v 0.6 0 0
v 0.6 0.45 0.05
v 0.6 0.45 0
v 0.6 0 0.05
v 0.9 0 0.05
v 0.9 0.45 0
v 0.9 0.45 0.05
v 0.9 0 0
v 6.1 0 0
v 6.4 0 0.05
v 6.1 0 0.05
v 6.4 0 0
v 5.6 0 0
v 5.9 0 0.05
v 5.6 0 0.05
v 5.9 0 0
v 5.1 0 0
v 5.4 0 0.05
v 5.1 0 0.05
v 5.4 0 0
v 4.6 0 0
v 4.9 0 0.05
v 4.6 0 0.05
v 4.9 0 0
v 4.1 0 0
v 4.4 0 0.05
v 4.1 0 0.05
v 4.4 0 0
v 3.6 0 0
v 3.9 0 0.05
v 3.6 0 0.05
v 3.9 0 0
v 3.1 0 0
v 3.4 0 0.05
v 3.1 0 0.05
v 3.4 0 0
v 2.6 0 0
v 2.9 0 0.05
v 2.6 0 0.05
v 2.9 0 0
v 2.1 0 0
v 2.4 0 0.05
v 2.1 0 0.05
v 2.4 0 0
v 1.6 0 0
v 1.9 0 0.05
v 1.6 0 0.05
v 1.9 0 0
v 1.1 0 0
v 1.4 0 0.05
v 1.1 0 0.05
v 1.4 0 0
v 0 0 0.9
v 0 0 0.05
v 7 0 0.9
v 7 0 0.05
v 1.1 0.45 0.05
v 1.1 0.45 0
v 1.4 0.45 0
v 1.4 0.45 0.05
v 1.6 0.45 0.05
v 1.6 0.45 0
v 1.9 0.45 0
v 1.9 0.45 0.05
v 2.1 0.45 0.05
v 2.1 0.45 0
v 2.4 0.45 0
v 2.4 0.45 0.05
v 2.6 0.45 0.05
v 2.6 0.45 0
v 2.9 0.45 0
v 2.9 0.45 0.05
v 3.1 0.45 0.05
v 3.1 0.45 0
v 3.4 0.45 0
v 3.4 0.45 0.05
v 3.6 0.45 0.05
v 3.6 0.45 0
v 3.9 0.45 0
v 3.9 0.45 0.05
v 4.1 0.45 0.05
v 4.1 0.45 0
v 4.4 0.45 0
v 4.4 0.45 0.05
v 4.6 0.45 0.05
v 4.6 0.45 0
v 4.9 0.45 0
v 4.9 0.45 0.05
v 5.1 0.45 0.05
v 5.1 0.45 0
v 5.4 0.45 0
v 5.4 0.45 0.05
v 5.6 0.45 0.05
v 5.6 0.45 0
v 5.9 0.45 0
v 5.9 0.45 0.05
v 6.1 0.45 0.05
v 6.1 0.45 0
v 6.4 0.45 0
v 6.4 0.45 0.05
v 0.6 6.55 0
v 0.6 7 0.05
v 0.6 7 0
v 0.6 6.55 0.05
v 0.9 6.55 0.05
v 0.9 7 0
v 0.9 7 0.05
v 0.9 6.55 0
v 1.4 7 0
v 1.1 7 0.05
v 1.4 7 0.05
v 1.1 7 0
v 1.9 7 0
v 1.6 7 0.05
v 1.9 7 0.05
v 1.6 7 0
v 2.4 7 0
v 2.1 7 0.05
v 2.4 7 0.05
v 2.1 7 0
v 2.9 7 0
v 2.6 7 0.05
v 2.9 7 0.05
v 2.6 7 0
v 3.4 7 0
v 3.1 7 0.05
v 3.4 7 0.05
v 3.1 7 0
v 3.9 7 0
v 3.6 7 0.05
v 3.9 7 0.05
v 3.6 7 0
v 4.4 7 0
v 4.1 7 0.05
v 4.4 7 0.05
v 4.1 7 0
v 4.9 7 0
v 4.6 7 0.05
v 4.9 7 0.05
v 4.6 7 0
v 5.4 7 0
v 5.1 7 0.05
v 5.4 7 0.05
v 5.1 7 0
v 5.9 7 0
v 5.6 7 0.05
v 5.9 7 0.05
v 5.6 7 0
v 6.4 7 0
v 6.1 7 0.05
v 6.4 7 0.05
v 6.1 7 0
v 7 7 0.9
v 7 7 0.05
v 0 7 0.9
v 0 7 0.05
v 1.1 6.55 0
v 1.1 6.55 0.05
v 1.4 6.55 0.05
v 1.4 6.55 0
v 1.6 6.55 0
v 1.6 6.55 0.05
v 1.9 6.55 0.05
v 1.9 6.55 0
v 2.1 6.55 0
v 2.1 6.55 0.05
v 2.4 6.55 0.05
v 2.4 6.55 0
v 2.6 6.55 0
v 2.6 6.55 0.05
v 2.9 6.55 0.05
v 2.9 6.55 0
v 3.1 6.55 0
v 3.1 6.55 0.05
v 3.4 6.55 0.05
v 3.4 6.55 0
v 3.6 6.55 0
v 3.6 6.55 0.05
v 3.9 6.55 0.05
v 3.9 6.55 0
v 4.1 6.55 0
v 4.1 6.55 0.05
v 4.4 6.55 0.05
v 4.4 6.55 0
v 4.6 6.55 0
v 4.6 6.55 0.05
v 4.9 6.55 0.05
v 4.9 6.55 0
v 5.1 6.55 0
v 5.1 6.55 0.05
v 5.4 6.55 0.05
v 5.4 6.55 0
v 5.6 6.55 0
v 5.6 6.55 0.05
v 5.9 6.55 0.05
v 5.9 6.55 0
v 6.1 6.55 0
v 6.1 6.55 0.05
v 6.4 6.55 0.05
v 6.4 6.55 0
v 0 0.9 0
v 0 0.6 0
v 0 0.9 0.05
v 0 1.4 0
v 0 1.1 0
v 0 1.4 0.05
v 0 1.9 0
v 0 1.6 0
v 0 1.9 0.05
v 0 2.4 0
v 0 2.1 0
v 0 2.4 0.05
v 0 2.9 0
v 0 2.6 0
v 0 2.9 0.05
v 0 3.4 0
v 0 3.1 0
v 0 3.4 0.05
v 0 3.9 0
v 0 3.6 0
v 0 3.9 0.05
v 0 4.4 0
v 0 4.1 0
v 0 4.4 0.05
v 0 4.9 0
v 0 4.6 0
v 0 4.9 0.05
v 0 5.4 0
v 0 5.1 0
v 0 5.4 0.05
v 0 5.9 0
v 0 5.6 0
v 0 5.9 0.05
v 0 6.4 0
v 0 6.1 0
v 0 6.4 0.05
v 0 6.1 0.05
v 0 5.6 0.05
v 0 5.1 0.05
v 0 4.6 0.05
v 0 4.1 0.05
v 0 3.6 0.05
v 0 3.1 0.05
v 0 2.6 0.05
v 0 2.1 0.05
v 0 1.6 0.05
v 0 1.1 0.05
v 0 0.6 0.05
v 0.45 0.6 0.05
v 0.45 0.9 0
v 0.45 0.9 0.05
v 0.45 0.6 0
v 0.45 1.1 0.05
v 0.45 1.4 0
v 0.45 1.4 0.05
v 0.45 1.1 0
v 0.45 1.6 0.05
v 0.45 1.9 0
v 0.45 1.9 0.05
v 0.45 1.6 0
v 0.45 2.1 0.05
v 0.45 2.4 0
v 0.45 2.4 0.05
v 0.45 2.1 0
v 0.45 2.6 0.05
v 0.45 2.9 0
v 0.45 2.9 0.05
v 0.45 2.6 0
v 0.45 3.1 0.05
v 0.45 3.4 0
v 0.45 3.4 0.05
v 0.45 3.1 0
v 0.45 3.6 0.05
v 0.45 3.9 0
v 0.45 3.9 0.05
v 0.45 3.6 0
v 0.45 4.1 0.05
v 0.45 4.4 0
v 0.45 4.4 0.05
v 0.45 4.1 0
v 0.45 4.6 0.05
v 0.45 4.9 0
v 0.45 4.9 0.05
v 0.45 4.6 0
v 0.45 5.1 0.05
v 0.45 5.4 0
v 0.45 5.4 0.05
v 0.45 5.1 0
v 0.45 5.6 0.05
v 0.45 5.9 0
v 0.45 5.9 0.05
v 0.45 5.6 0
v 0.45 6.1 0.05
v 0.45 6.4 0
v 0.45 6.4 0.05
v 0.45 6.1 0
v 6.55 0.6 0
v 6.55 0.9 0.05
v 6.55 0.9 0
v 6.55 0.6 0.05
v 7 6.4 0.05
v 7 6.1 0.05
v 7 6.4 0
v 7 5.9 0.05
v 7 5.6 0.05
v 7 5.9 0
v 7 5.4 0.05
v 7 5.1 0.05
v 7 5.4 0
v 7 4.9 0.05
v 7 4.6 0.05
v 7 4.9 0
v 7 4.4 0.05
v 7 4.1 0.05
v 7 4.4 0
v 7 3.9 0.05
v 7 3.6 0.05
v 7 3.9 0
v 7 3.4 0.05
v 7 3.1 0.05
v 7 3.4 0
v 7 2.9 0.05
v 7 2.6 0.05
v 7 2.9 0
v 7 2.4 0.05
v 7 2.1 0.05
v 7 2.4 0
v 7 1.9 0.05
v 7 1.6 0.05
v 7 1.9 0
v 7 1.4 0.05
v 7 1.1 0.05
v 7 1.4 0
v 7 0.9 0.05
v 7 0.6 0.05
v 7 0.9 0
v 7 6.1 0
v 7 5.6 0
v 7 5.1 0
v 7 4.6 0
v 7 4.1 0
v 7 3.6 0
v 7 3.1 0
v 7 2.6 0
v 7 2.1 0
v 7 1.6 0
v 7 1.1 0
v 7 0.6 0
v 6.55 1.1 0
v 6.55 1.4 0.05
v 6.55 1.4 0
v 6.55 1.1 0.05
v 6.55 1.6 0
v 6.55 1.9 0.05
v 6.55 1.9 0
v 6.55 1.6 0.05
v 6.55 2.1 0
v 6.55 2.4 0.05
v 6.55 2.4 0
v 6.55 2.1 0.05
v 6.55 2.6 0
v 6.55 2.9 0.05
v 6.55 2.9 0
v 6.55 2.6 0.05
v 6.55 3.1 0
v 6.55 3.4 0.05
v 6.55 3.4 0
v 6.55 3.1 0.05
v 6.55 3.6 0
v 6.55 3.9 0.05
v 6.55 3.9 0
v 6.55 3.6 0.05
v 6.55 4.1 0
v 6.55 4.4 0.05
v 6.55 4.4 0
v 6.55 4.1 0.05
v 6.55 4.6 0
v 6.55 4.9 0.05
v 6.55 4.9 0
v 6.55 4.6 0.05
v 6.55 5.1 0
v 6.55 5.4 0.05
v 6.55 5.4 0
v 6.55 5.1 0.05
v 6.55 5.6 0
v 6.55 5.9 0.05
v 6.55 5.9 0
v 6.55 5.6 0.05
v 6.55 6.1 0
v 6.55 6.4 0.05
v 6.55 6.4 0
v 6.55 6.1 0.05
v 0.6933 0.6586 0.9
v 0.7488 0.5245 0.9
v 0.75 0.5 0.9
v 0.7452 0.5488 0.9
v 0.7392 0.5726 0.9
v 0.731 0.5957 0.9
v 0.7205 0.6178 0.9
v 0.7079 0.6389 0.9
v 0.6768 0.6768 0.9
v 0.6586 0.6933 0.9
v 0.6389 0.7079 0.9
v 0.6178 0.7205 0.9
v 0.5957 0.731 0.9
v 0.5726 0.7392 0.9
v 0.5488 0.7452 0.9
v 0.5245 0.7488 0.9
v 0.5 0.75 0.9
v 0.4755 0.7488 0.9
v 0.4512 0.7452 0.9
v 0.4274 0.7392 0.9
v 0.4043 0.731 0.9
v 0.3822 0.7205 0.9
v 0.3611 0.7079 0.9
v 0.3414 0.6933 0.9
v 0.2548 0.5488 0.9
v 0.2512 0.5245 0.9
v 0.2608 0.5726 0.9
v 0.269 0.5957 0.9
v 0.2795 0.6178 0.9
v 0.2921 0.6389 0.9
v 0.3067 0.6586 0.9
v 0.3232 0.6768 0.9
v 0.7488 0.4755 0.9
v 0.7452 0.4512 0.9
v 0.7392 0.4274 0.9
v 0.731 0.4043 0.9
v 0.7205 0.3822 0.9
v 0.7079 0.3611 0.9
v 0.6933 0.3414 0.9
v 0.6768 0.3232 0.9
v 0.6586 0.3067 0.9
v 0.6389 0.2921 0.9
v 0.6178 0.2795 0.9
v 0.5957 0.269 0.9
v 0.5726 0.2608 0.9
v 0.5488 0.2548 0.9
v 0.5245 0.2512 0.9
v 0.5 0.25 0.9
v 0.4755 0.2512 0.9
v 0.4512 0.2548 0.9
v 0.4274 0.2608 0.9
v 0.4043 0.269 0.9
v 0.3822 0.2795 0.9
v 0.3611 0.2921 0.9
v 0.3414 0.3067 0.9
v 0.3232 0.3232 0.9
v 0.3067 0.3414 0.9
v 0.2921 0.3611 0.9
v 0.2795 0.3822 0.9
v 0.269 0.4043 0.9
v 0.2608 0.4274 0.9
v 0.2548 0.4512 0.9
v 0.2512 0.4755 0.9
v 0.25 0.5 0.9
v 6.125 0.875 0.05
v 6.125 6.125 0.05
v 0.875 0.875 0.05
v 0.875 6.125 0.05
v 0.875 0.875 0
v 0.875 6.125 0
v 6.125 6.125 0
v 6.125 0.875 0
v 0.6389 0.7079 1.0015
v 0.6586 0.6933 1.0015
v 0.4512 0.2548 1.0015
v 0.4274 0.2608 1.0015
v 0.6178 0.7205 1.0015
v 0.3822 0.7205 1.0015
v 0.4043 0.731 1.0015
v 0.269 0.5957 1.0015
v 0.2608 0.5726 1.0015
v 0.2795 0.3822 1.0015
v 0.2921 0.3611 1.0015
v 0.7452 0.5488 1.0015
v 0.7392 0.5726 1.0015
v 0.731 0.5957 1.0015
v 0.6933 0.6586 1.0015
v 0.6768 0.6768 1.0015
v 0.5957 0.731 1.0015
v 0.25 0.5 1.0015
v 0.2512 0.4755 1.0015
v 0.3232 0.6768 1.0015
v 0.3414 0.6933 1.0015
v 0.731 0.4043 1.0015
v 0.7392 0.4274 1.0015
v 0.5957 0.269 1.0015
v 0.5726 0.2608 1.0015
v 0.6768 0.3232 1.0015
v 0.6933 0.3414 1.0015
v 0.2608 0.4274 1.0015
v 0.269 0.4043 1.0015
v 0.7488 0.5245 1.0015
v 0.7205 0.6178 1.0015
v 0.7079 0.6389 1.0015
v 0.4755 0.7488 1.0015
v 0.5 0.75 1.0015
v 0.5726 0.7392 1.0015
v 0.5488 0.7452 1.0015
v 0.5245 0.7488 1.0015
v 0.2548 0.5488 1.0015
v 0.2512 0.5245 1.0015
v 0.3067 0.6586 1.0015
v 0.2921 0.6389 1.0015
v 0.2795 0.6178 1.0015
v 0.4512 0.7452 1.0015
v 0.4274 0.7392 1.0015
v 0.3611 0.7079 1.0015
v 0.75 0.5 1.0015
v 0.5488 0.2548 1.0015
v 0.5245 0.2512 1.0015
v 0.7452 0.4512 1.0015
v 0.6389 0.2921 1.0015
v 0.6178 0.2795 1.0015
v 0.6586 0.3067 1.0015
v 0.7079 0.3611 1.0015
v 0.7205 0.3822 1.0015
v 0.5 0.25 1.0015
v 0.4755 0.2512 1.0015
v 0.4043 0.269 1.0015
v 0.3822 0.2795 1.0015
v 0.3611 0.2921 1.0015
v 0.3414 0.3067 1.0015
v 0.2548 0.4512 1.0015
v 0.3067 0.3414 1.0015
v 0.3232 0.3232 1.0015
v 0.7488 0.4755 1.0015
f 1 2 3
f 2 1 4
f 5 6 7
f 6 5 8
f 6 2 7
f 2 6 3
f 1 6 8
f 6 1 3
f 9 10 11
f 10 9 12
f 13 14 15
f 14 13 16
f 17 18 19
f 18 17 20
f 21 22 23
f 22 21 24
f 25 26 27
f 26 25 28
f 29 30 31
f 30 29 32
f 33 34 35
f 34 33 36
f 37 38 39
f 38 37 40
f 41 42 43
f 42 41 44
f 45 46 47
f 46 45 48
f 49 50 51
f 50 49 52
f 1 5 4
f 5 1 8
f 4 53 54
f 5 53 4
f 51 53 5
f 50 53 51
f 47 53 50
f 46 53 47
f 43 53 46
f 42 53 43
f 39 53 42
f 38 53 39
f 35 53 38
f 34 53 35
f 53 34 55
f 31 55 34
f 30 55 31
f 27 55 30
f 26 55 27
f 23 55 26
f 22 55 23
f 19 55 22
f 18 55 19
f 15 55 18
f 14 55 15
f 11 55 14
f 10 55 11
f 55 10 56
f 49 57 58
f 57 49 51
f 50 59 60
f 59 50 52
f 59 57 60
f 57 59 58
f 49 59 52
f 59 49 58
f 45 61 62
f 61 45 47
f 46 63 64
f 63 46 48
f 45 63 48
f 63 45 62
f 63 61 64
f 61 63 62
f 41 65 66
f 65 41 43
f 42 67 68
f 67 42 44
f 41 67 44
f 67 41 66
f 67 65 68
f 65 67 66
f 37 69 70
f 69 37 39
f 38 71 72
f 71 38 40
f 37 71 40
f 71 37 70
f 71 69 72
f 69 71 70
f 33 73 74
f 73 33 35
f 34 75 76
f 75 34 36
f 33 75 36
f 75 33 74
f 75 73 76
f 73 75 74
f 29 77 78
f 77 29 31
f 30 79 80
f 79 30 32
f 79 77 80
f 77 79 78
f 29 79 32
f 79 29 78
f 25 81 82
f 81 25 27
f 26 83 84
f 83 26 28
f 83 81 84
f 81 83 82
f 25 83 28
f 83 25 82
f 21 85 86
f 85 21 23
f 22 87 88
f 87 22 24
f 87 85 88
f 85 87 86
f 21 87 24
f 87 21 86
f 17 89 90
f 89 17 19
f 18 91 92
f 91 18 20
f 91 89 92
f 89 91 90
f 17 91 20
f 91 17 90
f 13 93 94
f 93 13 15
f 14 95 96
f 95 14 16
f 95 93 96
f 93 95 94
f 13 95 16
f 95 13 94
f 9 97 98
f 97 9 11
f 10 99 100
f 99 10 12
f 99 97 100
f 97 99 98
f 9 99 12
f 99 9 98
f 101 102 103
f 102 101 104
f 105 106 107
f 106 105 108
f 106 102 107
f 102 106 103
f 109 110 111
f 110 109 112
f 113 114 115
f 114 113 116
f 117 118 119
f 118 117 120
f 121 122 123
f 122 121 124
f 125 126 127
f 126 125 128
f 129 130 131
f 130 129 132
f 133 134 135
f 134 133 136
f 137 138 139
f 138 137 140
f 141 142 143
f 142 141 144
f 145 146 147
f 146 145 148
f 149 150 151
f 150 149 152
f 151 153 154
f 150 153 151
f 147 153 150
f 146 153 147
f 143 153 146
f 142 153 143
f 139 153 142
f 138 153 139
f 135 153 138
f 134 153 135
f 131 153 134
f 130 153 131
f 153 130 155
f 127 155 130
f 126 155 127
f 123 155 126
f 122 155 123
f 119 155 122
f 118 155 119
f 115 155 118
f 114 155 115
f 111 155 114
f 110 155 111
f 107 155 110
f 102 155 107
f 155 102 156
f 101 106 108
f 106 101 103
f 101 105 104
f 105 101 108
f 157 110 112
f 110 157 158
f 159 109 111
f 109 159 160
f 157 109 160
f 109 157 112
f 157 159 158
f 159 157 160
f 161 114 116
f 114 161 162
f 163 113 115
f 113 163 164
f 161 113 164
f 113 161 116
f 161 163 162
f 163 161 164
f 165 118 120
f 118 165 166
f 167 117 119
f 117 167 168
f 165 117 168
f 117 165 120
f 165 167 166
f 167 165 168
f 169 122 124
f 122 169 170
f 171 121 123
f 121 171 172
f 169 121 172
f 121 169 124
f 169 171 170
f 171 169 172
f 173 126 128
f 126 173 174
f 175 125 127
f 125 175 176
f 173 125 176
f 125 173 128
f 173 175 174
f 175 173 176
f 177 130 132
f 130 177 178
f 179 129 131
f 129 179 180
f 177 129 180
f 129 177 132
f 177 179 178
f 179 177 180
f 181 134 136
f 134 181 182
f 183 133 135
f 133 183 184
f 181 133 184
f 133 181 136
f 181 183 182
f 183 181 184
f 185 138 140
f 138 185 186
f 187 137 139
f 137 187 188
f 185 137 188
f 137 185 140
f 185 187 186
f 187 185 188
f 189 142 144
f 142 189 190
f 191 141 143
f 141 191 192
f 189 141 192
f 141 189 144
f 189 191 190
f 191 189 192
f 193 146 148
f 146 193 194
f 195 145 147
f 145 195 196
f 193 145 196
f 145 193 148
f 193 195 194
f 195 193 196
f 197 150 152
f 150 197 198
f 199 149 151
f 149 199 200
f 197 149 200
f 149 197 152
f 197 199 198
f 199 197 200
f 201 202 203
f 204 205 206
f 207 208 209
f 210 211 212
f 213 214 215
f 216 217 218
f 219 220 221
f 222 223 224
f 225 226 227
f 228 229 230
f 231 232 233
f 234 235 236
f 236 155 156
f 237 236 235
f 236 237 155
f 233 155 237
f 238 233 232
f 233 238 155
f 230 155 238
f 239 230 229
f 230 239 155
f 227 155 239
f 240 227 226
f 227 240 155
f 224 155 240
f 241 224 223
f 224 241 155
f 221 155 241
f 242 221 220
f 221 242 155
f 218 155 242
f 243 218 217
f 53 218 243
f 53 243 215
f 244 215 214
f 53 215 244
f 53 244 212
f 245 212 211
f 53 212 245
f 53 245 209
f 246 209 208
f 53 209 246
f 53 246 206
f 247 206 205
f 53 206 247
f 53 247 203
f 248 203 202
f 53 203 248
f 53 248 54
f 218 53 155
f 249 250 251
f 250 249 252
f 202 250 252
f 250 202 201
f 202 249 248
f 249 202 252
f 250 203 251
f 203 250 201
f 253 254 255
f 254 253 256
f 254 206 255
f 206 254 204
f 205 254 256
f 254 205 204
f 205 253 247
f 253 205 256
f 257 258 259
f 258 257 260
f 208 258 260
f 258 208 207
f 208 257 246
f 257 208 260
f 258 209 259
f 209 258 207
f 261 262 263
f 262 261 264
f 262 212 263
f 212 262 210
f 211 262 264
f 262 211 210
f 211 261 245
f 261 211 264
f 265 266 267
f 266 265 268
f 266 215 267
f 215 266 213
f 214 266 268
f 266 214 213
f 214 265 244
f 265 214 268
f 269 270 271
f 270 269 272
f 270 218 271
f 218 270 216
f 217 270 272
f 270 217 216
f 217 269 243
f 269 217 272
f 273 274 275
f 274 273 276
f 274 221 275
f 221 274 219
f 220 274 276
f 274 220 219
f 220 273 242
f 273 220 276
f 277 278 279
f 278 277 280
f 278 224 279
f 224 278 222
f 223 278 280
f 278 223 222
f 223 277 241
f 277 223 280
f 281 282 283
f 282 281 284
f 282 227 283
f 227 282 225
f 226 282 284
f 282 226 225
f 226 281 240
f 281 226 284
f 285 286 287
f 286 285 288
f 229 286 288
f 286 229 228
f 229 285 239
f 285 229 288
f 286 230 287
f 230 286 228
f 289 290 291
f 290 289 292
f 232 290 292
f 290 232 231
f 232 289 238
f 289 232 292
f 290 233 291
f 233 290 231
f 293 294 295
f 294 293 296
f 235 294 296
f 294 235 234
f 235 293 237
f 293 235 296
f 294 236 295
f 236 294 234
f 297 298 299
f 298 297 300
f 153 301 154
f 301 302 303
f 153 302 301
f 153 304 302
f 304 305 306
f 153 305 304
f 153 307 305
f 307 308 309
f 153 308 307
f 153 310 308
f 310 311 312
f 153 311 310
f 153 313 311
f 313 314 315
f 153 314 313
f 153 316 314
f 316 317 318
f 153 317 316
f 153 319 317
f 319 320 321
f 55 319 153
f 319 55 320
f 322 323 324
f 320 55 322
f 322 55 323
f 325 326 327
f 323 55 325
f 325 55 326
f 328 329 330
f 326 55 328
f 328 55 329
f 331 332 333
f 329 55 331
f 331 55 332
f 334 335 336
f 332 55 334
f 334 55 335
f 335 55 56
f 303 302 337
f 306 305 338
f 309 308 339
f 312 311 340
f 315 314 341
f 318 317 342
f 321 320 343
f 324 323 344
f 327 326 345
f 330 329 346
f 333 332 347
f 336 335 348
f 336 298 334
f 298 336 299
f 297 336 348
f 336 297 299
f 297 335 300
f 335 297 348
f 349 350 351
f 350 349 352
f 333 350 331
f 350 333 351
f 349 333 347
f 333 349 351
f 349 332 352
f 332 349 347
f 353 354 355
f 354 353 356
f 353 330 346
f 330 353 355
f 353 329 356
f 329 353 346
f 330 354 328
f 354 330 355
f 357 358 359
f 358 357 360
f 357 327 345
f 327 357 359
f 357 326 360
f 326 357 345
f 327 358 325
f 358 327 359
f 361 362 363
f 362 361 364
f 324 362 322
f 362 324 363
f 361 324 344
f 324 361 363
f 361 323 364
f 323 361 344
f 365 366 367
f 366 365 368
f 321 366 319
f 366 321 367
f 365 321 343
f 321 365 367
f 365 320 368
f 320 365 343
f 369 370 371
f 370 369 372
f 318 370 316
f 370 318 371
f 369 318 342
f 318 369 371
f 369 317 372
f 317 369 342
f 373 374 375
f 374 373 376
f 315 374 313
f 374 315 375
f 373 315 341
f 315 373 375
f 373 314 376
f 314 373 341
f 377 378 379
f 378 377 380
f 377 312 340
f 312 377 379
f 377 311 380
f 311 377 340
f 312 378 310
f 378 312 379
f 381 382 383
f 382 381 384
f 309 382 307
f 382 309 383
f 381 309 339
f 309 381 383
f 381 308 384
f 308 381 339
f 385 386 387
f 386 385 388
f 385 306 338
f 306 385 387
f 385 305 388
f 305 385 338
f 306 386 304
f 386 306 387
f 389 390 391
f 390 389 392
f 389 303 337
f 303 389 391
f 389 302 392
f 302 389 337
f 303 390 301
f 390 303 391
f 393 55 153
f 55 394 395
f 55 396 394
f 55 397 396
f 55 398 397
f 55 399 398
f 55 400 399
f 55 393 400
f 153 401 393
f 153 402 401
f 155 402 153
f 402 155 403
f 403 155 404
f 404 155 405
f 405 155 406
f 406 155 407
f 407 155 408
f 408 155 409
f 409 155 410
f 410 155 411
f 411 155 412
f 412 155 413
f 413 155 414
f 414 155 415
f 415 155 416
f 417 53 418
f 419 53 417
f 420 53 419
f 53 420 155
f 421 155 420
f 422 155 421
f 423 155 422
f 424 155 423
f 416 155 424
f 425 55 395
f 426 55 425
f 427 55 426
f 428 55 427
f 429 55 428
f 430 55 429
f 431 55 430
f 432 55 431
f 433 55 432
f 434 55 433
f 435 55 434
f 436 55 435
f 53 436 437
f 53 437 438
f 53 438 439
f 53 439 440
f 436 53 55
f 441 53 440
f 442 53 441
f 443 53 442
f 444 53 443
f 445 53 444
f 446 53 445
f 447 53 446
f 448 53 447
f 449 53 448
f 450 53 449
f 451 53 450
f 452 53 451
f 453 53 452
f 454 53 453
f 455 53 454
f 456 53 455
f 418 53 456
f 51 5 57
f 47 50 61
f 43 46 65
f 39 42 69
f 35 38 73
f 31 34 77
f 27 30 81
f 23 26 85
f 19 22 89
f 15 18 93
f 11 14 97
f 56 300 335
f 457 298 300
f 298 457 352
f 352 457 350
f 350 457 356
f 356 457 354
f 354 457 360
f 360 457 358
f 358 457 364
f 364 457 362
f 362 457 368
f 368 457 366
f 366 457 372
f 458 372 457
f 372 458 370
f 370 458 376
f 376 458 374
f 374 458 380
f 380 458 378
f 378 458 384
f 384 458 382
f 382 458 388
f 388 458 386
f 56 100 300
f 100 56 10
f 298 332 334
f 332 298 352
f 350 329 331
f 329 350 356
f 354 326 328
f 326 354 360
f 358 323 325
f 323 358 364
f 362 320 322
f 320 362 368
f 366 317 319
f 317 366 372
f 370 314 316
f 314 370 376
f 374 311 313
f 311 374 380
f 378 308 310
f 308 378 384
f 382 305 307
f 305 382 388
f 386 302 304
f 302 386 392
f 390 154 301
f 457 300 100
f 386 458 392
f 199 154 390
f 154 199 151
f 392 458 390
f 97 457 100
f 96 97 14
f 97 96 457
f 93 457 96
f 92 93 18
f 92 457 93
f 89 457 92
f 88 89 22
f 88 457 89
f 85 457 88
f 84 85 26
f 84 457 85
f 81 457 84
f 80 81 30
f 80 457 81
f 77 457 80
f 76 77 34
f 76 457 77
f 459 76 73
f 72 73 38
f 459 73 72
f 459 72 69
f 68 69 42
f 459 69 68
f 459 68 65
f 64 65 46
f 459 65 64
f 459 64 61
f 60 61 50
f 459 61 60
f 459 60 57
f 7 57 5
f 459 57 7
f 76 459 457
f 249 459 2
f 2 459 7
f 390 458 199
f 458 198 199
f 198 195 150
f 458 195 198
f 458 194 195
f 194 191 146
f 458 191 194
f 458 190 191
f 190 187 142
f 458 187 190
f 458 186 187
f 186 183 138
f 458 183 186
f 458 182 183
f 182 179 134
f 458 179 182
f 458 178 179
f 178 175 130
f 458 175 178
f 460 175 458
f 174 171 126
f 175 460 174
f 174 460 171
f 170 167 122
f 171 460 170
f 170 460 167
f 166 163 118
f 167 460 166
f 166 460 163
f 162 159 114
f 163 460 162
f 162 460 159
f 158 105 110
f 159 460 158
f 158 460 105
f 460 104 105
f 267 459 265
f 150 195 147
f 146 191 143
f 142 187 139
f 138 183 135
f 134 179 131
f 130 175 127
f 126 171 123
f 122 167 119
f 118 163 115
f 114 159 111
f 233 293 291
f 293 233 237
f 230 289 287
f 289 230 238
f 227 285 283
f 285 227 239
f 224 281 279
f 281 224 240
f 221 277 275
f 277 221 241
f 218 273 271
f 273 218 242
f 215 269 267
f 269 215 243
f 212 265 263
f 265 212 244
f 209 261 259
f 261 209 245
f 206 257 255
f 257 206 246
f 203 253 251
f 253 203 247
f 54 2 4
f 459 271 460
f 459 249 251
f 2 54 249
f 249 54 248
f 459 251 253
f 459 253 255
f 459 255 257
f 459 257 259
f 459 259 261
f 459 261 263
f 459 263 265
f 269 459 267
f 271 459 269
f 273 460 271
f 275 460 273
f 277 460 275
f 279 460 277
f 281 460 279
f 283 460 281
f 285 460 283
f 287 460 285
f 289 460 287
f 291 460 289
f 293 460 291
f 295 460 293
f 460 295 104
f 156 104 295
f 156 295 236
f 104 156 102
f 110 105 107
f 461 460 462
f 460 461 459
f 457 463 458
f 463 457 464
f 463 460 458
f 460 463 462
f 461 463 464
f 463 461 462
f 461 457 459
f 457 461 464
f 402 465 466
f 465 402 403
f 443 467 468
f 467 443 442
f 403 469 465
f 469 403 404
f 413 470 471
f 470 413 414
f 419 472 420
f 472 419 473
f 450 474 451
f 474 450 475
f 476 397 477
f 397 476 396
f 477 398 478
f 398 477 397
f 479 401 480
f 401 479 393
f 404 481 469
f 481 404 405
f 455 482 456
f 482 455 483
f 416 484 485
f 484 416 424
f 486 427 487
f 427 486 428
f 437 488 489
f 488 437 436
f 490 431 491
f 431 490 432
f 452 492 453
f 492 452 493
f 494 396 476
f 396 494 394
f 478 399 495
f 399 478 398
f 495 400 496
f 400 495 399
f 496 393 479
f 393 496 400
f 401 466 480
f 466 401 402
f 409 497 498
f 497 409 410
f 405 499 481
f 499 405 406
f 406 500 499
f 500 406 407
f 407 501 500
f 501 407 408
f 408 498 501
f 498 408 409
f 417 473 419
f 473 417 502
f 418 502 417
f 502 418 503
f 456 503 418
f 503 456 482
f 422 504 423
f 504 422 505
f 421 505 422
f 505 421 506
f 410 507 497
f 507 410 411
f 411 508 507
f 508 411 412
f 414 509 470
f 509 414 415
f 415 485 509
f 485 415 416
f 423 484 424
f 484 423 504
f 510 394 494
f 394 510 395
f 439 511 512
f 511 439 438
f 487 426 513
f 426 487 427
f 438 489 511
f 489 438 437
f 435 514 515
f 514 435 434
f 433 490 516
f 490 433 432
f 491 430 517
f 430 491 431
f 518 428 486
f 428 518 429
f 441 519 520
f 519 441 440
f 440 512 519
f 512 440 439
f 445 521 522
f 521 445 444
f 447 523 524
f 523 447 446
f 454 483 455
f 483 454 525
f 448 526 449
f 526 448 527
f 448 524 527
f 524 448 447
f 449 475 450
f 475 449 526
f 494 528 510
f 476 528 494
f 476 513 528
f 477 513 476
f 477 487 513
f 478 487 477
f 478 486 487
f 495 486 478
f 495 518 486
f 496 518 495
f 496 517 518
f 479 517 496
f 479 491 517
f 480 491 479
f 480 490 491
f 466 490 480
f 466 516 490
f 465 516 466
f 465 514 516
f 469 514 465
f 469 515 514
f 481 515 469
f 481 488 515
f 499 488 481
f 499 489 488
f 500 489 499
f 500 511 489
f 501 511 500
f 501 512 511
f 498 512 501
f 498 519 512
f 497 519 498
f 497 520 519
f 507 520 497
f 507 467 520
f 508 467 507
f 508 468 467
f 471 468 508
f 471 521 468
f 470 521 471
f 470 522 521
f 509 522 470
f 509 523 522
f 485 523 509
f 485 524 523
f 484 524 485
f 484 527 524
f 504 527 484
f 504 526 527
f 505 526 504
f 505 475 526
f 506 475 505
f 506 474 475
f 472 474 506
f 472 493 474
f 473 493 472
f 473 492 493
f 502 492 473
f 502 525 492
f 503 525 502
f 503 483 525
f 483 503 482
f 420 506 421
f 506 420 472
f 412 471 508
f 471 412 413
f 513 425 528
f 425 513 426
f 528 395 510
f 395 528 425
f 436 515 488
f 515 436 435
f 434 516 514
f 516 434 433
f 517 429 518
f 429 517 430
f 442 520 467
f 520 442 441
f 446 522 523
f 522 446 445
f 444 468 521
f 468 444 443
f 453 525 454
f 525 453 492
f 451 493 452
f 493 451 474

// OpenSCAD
/*48-Lead Very Thin Plastic Quad Flat, No Lead Package (RTB) - 7.0x7.0 mm Body [VQFN]
With 5.25x5.25 mm Exposed Pad and Stepped Wettable Flanks;
generated by com.zoubworld.electronics.cad.model3d.QFN48
Date : Sun Jan 25 03:12:27 CET 2026
*/
D2 = 5.25 ;
E2 = 5.25 ;
D3 = 0.085 ;
D = 7.0 ;
N = 48.0 ;
e = 0.5 ;
A4 = 0.19 ;
E = 7.0 ;
L = 0.45 ;
b = 0.3 ;
A = 0.9 ;
A1 = 0.05 ;
K = 0.53 ;
A3 = 0.203 ;
$fn =64;

//body
color("black")
translate([0,0,A1])
cube([D,E,A-A1], center=false);

// pad
for (i = [-N/4/2 : 1 : N/4/2-1])
color("grey")
translate([D/2-b/2+e/2+e*i,0,0])
cube([b,L,A3], center=false);

for (i = [-N/4/2 : 1 : N/4/2-1])
color("grey")
translate([D/2-b/2+e/2+e*i,E-L,0])
cube([b,L,A3], center=false);


for (i = [-N/4/2 : 1 : N/4/2-1])
color("grey")
translate([0,E/2-b/2+e/2+e*i,0])
cube([L,b,A3], center=false);



for (i = [-N/4/2 : 1 : N/4/2-1])
color("grey")
translate([D-L,E/2-b/2+e/2+e*i,0])
cube([L,b,A3], center=false);

//expose pad
color("grey")
translate([D/2-D2/2,E/2-E2/2,0])
cube([D2,E2,A3], center=false);

color("white")
translate([0.5,0.5,A3])
cylinder(A-A3/2,r=0.25,center=false);
